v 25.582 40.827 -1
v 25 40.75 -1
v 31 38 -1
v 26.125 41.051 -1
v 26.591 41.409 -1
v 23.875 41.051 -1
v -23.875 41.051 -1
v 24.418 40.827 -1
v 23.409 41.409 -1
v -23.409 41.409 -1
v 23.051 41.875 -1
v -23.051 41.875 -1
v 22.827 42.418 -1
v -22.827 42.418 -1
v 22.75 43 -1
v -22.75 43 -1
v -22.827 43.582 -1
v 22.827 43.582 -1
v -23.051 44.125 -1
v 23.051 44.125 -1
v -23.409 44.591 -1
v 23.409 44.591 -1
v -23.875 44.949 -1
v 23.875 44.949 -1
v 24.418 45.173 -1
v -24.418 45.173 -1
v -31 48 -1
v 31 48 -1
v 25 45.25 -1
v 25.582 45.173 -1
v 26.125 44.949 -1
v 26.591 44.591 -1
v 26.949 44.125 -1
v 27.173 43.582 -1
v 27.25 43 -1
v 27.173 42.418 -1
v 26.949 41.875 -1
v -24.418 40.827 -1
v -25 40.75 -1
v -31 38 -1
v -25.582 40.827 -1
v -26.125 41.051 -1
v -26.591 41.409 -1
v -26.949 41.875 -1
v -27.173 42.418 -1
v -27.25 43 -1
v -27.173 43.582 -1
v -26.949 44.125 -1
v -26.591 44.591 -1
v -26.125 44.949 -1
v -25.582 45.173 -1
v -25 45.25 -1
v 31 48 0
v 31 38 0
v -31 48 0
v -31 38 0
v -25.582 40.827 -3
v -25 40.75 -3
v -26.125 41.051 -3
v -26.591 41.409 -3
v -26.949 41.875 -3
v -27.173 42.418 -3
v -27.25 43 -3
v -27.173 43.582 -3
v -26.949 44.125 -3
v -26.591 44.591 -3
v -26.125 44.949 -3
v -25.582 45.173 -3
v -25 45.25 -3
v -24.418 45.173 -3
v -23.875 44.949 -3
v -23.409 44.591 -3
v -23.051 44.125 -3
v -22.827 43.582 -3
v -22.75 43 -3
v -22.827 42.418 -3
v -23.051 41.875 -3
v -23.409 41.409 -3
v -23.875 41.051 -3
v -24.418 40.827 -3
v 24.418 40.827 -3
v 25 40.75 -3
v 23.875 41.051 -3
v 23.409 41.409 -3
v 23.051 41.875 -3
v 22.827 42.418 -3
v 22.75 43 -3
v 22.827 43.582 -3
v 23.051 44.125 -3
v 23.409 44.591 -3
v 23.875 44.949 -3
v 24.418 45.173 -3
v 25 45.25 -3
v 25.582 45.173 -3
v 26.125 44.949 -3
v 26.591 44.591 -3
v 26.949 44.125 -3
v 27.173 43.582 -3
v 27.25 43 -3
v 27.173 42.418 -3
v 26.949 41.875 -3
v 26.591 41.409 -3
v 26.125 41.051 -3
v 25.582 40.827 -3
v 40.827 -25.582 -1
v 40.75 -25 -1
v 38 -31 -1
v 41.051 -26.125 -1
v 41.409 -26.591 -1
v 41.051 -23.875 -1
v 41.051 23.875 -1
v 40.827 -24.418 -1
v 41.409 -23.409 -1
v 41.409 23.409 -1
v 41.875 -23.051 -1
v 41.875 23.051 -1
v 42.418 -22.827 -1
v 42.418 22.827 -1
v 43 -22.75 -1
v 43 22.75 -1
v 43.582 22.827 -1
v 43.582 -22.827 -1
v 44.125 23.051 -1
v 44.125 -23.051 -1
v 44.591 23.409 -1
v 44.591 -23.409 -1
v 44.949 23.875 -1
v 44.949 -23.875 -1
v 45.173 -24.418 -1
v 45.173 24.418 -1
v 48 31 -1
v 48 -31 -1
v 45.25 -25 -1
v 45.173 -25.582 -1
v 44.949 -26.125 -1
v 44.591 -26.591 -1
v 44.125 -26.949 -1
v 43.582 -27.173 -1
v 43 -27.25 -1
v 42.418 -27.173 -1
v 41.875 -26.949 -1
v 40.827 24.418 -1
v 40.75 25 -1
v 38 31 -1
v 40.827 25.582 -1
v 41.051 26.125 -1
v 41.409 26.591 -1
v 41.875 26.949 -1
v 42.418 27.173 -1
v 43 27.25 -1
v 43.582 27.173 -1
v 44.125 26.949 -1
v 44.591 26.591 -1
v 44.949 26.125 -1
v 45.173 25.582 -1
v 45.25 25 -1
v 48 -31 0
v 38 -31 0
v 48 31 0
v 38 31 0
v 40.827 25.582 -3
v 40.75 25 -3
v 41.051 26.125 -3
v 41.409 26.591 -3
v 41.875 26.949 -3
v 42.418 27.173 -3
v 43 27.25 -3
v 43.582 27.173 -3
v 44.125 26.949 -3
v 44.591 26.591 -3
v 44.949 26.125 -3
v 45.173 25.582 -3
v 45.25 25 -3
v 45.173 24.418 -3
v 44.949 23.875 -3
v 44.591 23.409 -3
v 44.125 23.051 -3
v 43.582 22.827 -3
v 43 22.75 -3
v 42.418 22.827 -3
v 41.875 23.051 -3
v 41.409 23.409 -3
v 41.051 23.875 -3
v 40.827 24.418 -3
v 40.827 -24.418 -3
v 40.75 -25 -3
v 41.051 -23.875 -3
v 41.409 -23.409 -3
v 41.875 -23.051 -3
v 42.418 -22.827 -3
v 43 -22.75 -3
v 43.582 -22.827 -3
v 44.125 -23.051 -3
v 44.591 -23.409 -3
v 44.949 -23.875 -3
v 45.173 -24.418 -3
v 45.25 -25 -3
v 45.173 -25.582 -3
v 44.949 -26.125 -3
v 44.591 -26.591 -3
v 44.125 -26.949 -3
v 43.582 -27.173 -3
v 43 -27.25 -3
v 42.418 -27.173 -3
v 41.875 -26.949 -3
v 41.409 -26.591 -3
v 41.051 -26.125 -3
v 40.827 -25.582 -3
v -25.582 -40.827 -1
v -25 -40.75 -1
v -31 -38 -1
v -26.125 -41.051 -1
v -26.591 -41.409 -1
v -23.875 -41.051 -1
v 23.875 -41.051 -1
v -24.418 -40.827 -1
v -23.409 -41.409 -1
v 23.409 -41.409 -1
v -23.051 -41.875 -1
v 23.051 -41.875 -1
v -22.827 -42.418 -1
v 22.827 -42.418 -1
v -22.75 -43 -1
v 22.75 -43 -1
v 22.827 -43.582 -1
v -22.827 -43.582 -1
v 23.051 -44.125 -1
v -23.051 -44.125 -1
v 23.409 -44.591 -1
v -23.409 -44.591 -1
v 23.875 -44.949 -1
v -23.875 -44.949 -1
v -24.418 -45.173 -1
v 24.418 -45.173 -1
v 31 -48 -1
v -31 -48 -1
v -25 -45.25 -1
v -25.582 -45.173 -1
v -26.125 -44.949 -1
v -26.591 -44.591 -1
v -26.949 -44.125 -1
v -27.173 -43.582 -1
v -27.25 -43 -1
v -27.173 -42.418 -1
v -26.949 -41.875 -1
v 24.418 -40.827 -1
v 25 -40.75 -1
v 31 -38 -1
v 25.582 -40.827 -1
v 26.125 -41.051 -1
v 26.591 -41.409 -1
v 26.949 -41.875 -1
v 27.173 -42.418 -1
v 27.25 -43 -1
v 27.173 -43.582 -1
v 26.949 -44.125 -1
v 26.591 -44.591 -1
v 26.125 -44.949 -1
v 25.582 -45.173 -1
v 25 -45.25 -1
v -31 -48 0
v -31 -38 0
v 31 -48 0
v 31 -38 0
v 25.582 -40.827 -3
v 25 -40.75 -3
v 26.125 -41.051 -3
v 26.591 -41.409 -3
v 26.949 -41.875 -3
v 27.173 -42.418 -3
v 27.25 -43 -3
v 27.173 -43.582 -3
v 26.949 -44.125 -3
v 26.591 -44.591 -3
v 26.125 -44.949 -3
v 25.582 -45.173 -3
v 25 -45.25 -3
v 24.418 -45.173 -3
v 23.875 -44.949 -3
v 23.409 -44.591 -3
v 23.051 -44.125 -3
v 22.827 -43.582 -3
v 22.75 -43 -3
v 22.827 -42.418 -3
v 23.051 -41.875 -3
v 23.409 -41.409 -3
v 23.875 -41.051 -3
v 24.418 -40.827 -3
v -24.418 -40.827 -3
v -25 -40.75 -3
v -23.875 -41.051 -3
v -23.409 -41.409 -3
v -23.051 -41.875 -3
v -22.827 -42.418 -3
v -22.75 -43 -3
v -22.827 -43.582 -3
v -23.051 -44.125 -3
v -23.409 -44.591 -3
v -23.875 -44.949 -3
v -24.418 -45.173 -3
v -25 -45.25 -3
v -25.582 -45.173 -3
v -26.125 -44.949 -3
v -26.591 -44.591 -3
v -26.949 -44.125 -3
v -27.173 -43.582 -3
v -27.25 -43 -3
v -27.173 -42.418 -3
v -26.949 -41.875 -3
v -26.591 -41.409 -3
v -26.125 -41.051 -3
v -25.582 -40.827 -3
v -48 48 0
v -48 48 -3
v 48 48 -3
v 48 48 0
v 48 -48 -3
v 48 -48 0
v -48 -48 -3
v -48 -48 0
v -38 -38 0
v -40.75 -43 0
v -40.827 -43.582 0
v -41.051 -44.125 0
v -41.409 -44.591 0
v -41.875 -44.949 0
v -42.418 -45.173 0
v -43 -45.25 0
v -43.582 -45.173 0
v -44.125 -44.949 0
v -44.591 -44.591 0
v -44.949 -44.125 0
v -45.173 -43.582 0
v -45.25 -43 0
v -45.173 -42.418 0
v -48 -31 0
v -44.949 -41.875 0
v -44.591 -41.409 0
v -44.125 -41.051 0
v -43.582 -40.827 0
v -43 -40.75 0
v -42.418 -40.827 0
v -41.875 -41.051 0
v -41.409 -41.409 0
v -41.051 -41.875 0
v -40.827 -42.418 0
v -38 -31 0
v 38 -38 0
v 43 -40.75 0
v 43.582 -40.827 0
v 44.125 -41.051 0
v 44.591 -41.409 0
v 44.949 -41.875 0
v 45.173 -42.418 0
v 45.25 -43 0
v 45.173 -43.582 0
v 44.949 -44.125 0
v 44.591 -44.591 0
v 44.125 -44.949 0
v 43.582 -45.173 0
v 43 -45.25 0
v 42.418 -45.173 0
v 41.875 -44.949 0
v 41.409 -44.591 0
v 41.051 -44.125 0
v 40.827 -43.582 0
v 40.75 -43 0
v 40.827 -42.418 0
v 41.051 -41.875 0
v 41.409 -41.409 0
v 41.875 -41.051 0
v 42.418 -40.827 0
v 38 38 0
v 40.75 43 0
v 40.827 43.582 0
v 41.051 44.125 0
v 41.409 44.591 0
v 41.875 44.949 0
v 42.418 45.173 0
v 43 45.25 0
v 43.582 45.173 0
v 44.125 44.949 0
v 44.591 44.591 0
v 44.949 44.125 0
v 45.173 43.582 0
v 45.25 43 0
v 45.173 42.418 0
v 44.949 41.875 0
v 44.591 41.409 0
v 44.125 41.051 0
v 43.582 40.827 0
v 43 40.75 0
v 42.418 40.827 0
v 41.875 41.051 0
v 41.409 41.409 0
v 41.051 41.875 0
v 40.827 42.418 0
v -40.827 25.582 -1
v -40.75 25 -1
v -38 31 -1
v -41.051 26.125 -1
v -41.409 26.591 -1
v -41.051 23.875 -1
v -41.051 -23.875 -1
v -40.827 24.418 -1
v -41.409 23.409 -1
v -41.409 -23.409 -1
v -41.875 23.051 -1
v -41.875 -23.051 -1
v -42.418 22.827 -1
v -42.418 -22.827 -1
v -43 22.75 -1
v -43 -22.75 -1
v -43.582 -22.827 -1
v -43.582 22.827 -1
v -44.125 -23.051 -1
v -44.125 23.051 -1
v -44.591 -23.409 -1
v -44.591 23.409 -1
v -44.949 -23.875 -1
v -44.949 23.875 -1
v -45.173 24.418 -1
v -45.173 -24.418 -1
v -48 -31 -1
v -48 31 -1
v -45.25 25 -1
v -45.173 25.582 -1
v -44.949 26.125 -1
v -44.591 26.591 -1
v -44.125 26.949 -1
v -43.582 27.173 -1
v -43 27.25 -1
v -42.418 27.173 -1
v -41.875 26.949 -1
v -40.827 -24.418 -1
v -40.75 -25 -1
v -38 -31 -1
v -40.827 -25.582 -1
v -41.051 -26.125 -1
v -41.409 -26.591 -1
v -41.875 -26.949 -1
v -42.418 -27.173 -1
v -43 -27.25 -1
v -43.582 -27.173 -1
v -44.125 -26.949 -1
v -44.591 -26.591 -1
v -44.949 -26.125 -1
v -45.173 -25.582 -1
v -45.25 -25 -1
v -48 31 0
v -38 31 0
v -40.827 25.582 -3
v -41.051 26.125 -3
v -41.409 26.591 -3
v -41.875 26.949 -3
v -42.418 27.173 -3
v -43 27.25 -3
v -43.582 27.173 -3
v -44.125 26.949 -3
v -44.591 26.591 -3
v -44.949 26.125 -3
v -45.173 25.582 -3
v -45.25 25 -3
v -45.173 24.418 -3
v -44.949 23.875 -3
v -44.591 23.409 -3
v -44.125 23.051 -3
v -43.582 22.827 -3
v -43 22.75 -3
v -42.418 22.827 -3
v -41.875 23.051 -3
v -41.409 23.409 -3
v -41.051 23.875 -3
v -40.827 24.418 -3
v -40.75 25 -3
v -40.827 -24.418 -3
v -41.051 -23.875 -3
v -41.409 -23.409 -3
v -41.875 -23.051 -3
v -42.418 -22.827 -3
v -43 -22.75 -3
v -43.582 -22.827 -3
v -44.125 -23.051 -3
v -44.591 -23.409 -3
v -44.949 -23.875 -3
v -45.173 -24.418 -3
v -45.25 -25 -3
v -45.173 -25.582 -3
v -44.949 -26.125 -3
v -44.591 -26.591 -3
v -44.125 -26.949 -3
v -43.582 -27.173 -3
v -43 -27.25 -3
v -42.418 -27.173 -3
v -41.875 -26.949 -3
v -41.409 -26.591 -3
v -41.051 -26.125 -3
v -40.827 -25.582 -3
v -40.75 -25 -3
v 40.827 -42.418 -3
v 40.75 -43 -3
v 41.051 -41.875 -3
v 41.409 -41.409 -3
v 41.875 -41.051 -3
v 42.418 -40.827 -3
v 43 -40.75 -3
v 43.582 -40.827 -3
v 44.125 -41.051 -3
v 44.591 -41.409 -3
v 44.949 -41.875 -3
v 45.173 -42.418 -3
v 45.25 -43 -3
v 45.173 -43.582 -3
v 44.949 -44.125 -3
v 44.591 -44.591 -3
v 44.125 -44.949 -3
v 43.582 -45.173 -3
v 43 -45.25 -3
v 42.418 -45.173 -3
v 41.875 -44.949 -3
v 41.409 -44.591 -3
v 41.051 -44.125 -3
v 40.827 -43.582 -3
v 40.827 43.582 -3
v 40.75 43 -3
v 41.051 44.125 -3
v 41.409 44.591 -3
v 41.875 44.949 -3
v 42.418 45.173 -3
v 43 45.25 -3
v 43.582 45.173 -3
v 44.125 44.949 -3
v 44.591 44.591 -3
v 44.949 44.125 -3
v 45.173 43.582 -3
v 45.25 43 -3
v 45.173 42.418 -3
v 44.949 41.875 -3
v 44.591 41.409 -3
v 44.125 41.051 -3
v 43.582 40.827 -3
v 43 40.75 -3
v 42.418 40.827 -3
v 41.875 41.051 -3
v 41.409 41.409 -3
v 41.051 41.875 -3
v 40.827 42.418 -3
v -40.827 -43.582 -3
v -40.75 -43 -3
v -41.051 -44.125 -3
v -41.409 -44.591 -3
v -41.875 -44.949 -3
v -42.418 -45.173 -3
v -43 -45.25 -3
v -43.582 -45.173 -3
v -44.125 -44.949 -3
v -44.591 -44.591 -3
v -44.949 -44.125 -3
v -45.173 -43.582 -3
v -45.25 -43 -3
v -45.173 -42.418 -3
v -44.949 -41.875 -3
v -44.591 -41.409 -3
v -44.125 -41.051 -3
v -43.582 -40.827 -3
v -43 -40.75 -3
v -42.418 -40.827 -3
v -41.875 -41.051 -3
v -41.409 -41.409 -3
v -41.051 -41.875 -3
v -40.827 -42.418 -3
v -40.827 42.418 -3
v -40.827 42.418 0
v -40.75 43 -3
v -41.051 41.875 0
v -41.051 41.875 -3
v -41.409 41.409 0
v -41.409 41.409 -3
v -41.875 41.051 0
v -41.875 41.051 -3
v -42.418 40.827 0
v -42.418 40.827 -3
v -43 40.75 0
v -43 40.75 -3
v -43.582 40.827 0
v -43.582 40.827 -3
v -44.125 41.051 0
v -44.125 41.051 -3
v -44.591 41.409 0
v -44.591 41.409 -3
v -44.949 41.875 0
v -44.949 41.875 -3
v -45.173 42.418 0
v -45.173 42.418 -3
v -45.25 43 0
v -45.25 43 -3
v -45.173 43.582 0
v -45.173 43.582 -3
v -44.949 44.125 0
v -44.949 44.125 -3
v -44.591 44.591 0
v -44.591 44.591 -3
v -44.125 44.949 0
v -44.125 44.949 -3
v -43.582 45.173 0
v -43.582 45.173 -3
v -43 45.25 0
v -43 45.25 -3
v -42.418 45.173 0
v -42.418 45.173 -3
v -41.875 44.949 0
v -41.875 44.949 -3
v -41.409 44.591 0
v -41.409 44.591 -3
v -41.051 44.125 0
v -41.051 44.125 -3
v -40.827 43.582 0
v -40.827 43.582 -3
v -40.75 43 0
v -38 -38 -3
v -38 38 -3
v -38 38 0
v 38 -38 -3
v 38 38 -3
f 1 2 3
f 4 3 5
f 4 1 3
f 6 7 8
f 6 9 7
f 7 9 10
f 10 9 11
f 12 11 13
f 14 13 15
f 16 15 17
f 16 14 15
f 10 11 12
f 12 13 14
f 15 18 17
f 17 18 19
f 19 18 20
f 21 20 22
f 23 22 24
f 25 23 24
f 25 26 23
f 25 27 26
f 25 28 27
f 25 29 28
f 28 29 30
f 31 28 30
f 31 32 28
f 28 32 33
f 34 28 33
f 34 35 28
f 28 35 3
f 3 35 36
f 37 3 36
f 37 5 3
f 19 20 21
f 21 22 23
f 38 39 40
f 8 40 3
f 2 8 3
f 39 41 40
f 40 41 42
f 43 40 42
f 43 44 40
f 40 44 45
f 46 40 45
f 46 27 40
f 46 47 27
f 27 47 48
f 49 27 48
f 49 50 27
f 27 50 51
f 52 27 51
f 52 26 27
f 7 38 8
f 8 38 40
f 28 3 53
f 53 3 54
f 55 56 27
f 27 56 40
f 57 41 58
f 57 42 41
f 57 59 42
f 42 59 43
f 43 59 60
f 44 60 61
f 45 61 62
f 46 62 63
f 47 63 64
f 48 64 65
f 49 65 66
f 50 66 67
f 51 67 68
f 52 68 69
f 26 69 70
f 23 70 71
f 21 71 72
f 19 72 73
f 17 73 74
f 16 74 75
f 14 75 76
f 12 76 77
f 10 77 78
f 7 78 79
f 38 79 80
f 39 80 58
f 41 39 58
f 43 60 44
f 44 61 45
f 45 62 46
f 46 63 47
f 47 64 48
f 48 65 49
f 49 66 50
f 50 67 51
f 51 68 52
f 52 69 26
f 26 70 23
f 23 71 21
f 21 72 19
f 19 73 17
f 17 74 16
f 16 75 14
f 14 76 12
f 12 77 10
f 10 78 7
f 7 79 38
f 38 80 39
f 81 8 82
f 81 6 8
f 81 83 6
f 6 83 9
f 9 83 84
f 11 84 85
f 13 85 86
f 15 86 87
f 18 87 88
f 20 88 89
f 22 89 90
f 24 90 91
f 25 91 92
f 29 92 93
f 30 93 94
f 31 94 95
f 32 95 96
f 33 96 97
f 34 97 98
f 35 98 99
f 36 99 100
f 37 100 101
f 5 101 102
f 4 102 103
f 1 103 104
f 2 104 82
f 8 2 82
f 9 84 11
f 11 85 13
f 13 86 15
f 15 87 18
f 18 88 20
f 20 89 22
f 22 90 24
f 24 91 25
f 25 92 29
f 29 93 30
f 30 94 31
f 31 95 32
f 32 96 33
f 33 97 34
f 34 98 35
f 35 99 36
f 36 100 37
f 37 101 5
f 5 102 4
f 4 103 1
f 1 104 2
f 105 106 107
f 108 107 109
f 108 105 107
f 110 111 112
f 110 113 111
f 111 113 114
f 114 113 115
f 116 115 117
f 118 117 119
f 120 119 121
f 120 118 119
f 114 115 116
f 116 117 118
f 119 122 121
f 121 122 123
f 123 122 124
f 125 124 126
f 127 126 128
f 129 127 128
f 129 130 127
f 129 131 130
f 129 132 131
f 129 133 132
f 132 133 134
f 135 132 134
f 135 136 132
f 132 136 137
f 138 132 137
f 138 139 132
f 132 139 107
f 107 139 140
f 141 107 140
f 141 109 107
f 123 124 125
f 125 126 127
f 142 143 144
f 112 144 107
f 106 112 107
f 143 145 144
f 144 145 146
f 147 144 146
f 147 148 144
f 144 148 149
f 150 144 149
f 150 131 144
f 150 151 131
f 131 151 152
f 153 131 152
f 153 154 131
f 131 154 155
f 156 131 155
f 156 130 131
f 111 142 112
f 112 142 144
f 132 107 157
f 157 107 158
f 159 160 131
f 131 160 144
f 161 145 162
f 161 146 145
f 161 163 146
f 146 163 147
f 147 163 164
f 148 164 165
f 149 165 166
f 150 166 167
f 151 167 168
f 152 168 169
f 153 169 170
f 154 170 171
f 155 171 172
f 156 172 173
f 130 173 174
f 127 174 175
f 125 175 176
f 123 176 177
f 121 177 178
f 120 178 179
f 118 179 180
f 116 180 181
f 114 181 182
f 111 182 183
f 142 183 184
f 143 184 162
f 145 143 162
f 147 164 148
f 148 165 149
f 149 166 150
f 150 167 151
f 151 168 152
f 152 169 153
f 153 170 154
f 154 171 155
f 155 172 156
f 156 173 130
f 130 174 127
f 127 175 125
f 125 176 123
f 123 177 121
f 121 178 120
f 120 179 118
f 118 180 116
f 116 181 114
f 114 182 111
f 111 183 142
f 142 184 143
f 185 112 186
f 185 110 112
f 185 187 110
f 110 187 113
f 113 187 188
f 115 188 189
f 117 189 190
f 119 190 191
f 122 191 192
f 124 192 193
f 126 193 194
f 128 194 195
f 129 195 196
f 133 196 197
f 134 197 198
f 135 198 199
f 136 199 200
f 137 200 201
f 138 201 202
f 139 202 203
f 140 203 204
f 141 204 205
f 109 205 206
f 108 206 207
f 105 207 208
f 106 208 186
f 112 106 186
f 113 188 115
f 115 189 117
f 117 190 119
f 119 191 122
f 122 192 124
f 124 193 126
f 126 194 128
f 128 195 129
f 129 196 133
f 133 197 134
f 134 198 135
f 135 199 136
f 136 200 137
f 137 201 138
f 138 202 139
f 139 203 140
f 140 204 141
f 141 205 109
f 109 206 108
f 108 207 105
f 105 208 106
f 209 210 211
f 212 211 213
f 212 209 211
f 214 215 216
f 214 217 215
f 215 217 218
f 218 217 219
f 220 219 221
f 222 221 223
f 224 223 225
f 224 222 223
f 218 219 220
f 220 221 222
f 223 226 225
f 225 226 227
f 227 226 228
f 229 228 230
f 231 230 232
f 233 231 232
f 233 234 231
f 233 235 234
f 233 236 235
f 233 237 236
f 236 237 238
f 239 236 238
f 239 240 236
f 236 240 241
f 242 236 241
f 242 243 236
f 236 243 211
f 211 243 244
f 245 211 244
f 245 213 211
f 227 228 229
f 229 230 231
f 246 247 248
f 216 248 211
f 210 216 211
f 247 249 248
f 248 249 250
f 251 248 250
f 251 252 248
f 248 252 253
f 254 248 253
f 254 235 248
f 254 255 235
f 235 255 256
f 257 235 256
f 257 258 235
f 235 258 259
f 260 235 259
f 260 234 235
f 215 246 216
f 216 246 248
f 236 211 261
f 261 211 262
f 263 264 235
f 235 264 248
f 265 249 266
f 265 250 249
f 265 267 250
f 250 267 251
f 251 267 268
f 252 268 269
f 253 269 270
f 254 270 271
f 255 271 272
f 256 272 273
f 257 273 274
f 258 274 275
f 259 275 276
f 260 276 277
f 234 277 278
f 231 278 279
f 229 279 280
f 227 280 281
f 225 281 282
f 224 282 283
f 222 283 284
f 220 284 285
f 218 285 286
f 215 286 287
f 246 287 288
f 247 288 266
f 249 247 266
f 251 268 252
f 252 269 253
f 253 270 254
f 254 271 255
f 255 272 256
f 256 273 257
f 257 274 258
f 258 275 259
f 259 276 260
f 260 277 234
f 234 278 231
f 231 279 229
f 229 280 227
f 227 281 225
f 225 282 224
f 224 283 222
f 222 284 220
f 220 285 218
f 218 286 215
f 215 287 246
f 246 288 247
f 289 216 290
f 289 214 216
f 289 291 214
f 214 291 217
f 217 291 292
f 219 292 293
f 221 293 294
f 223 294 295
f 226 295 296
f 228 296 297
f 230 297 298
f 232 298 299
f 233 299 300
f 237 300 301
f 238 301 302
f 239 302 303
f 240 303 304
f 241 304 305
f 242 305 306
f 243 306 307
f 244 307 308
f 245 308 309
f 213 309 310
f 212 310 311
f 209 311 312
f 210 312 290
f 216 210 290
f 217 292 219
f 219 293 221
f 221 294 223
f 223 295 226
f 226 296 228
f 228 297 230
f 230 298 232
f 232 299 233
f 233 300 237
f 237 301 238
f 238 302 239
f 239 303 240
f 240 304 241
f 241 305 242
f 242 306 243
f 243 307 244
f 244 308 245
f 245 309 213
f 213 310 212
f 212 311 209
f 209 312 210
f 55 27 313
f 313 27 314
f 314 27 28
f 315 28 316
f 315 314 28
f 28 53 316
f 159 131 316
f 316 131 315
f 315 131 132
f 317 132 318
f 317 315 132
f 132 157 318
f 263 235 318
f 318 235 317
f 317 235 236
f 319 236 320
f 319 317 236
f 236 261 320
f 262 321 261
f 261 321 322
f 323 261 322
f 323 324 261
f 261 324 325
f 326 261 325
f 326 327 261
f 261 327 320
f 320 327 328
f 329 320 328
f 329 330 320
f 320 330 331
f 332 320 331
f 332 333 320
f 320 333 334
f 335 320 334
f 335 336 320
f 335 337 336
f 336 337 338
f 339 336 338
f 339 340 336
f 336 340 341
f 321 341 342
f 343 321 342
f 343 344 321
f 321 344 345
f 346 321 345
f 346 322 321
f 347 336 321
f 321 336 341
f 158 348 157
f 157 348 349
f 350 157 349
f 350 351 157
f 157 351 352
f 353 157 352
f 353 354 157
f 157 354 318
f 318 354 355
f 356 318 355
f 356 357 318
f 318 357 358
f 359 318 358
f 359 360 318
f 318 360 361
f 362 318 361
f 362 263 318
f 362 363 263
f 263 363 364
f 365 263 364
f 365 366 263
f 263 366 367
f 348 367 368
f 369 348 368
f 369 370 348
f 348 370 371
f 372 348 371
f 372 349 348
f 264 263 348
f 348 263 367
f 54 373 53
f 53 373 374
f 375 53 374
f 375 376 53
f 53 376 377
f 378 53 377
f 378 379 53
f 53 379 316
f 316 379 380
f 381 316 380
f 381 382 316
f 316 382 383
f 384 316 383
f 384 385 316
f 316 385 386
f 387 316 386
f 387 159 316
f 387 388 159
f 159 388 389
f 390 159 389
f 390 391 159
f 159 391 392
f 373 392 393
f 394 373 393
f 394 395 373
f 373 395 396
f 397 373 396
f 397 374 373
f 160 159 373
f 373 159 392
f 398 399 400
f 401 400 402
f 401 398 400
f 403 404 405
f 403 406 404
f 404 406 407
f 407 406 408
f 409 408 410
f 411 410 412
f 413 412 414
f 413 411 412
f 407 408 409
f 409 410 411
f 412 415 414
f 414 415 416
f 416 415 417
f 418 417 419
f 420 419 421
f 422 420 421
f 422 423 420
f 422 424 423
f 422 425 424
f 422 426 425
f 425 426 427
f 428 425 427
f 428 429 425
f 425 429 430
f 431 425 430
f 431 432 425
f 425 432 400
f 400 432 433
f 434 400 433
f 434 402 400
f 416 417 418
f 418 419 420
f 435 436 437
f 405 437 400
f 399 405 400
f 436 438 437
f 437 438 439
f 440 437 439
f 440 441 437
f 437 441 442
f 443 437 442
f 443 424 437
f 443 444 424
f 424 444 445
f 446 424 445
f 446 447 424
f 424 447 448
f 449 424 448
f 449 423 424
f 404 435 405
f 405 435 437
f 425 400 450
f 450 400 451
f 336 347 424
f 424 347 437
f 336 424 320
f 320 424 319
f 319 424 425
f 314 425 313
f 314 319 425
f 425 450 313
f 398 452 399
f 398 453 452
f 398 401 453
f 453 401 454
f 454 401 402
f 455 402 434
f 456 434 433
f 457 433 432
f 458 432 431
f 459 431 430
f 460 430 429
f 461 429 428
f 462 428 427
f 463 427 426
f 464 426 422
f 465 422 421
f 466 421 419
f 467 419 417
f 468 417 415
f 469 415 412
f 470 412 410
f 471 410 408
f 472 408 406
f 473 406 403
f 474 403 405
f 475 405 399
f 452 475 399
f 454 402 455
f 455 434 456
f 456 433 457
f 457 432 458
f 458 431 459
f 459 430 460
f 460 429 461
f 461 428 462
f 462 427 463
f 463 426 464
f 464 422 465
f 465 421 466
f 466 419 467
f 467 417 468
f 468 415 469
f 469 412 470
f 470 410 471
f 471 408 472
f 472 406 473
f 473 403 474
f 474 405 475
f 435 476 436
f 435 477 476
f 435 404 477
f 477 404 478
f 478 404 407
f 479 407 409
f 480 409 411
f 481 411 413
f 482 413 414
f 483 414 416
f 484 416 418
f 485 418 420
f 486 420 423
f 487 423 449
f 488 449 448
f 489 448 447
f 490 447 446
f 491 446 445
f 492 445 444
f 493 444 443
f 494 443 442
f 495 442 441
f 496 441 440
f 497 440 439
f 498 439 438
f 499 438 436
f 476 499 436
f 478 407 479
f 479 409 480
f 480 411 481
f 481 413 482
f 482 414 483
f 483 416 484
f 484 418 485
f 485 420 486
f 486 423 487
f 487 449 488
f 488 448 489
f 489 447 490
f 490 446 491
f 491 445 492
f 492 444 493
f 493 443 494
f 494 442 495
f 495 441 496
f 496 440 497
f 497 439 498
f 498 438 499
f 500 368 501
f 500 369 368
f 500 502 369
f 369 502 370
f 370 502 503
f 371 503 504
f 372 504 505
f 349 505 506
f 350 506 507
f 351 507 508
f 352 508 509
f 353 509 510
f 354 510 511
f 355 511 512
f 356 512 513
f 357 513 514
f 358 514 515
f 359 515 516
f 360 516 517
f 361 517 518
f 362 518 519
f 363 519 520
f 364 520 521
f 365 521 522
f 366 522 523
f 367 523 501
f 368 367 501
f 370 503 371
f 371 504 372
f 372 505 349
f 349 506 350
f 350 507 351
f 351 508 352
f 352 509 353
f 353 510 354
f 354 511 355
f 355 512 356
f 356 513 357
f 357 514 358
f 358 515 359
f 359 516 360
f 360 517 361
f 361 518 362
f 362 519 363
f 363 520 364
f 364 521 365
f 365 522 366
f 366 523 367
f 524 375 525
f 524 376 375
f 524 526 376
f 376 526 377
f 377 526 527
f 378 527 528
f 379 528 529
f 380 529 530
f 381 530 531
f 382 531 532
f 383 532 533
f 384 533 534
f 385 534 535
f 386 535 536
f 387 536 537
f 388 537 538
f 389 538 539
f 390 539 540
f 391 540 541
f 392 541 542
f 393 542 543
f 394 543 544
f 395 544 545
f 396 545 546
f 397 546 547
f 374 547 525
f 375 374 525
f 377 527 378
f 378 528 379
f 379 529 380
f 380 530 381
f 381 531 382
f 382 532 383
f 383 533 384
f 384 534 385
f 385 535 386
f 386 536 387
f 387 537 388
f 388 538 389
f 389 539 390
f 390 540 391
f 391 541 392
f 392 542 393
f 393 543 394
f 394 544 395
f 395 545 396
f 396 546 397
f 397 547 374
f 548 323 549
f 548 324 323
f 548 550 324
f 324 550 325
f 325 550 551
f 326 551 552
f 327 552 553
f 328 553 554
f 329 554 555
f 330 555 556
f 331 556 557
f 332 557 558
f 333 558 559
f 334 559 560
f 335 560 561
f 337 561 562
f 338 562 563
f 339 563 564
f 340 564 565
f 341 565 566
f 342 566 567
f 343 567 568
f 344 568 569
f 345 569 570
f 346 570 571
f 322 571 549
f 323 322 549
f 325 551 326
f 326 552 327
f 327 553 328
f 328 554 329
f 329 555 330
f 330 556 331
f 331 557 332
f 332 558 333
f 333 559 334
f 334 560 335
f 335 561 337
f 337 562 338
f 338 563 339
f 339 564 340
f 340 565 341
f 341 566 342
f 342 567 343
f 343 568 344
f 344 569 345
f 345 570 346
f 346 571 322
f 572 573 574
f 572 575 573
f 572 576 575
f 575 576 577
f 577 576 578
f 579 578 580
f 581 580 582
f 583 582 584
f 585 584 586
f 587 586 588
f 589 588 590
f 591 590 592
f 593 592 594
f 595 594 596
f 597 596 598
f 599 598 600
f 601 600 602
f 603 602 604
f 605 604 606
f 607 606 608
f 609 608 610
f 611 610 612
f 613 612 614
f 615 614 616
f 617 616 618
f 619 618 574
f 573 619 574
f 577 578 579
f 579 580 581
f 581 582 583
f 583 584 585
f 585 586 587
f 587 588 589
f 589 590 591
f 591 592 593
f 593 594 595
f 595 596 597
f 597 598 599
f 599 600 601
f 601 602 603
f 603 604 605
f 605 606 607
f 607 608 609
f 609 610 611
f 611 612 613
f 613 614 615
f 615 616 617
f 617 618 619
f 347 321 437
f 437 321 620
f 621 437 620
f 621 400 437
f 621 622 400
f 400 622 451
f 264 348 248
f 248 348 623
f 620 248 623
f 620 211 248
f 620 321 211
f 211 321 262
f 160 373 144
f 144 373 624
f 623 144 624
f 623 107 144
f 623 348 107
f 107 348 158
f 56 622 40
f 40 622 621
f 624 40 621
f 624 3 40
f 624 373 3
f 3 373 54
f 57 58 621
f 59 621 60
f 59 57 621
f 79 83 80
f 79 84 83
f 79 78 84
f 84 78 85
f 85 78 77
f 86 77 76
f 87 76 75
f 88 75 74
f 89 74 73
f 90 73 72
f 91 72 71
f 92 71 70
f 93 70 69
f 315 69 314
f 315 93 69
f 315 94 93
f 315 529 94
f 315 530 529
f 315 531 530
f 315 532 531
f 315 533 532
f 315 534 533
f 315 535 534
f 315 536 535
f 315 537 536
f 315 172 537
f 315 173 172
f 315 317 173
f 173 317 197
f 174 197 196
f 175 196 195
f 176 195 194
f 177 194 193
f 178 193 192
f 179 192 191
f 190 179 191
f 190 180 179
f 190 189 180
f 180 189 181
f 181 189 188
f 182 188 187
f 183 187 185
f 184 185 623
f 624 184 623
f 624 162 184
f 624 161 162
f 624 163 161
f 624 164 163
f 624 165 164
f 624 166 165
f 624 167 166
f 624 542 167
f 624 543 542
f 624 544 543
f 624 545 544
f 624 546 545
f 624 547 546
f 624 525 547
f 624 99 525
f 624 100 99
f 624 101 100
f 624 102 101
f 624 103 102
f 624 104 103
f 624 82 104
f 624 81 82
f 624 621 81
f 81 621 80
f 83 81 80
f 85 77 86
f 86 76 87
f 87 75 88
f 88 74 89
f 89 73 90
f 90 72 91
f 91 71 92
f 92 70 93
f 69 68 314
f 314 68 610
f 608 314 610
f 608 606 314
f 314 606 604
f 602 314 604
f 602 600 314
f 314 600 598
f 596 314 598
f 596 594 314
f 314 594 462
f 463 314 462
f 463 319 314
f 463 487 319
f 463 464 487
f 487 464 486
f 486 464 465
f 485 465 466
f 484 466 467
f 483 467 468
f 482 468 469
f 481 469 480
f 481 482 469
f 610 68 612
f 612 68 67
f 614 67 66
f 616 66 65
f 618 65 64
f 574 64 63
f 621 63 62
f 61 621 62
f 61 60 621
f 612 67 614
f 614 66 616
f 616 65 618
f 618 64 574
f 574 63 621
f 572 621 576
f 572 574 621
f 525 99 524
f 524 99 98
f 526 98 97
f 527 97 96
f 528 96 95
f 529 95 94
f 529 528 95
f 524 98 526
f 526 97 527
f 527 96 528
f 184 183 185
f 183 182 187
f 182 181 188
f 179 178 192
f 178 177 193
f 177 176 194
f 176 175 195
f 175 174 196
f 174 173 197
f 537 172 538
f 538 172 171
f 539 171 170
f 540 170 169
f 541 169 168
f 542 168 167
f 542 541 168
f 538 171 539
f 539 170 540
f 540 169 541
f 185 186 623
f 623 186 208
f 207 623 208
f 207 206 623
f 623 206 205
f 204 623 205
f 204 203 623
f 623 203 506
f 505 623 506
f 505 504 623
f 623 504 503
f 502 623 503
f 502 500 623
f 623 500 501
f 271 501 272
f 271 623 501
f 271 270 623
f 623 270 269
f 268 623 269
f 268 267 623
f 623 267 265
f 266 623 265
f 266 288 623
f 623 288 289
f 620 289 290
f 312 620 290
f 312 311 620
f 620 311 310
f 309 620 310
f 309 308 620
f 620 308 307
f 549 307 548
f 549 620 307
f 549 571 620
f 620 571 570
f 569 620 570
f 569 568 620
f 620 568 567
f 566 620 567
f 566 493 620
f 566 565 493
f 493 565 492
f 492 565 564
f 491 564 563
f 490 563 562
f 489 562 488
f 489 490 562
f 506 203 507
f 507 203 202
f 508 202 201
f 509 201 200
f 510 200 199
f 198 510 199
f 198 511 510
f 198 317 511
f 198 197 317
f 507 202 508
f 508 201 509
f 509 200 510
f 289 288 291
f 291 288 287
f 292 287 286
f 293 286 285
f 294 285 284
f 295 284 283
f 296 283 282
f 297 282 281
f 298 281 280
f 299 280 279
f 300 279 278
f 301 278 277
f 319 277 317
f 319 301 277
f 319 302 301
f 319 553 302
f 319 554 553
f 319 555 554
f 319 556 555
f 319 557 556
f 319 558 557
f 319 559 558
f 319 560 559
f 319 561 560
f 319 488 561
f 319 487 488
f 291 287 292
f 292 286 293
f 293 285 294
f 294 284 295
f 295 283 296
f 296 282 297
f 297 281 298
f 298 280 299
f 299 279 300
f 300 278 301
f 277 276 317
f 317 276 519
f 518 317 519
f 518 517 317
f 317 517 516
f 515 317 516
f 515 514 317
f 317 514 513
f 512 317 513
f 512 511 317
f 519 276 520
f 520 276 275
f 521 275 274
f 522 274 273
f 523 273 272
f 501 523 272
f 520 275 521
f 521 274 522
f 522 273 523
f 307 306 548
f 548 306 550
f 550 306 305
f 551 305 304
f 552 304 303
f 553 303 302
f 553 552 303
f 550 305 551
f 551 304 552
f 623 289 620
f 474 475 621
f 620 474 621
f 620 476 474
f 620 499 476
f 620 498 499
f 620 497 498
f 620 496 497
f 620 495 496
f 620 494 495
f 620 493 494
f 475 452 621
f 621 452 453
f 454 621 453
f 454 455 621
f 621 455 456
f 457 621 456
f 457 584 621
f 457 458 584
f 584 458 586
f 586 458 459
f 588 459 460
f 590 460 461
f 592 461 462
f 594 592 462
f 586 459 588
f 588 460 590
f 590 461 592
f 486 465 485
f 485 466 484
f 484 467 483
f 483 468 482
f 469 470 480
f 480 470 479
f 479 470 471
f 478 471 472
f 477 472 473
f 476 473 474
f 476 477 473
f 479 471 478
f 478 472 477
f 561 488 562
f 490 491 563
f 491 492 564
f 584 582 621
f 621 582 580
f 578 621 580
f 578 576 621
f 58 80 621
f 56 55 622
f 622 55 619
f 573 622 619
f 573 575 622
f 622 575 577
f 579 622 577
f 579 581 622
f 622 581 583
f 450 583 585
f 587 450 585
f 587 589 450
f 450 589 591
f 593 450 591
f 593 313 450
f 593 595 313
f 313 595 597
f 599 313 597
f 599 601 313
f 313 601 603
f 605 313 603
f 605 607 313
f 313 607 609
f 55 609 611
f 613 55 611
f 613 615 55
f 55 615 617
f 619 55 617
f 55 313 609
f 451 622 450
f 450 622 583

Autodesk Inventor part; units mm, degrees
ref_plane "YZ Plane" through (0, 0, 0) normal (1, 0, 0) x (0, 1, 0)
ref_plane "XZ Plane" through (0, 0, 0) normal (0, 1, 0) x (-1, 0, 0)
ref_plane "XY Plane" through (0, 0, 0) normal (0, 0, 1) x (1, 0, 0)
sketch "Sketch1" plane through (0, 0, 0) normal (0, 0, 1) x (1, 0, 0)
  line L0 (-48, 48) -> (48, 48)
  line L1 (48, 48) -> (48, -48)
  line L2 (48, -48) -> (-48, -48)
  line L3 (-48, -48) -> (-48, 48)
  line L4 (38, 38) -> (-38, 38)
  line L5 (-38, 38) -> (-38, -38)
  line L6 (-38, -38) -> (38, -38)
  line L7 (38, -38) -> (38, 38)
  line L8 (0, 152.7233) -> (0, -72.1628) construction
  line L9 (-77.8847, 0) -> (88.8171, 0) construction
  line L10 (-48, 43) -> (48, 43) construction
  line L11 (-43, 48) -> (-43, -48) construction
  line L12 (-48, -43) -> (48, -43) construction
  circle A0 centre (-43, 25) radius 2.25
  circle A1 centre (-43, -25) radius 2.25
  circle A2 centre (-43, -43) radius 2.25
  circle A3 centre (-43, 43) radius 2.25
  line L13 (-48, 30) -> (48, 30) construction
  line L14 (-48, -30) -> (48, -30) construction
  line L15 (-50, 31) -> (-36, 31)
  line L16 (-36, 31) -> (-36, -31)
  line L17 (-36, -31) -> (-50, -31)
  line L18 (-50, -31) -> (-50, 31)
  point P0 (0, 0)
  point P1 (0, 48)
  point P2 (48, 0)
  dimension "d0" = 96
  dimension "d1" = 96
  dimension "d2" = 10
  dimension "d5" = 5
  dimension "d11" = 5
  dimension "d14" = 5
  dimension "d31" = 4.5
  dimension "d32" = 4.5
  dimension "d61" = 4.5
  dimension "d62" = 4.5
  dimension "d65" = 30
  dimension "d66" = 30
  dimension "d67" = 5
  dimension "d68" = 5
  dimension "d74" = 1
  dimension "d75" = 1
  dimension "d76" = 2
  dimension "d77" = 2
extrude "Extrusion1" add sketch "Sketch1" against normal blind 3 contours L0 L1 L2 L3 L17 L5 L6 L7 L4 L15 | L15 L5 L17 L3 | A0 | A1 | A2 | A3
extrude "Extrusion2" cut sketch "Sketch1" against normal blind 10 contours A2 | A3
mirror "Mirror5" about plane through (0, 0, 0) normal (1, 0, 0) of "Extrusion2"
extrude "Extrusion5" cut sketch "Sketch1" against normal blind 10 contours A0 | A1
extrude "Extrusion6" cut sketch "Sketch1" against normal blind 1 contours L15 L5 L17 L3 | L3 L17 L18 L15 | L15 L16 L17 L5
pattern_circular "Circular Pattern1" count 4 over 360 about axis through (0, 0, -10) along (0, 0, 1) of "Extrusion5", "Extrusion6"
equation "\"d31\" = screw"
equation "\"d32\" = screw"
equation "\"d61\" = screw"
equation "\"d62\" = screw"
equation "\"d25\" = mat"
equation "\"screw\" = 4.5"
equation "\"mat\" = 3"
properties part number "Base" material "PC/ABS Plastic"
